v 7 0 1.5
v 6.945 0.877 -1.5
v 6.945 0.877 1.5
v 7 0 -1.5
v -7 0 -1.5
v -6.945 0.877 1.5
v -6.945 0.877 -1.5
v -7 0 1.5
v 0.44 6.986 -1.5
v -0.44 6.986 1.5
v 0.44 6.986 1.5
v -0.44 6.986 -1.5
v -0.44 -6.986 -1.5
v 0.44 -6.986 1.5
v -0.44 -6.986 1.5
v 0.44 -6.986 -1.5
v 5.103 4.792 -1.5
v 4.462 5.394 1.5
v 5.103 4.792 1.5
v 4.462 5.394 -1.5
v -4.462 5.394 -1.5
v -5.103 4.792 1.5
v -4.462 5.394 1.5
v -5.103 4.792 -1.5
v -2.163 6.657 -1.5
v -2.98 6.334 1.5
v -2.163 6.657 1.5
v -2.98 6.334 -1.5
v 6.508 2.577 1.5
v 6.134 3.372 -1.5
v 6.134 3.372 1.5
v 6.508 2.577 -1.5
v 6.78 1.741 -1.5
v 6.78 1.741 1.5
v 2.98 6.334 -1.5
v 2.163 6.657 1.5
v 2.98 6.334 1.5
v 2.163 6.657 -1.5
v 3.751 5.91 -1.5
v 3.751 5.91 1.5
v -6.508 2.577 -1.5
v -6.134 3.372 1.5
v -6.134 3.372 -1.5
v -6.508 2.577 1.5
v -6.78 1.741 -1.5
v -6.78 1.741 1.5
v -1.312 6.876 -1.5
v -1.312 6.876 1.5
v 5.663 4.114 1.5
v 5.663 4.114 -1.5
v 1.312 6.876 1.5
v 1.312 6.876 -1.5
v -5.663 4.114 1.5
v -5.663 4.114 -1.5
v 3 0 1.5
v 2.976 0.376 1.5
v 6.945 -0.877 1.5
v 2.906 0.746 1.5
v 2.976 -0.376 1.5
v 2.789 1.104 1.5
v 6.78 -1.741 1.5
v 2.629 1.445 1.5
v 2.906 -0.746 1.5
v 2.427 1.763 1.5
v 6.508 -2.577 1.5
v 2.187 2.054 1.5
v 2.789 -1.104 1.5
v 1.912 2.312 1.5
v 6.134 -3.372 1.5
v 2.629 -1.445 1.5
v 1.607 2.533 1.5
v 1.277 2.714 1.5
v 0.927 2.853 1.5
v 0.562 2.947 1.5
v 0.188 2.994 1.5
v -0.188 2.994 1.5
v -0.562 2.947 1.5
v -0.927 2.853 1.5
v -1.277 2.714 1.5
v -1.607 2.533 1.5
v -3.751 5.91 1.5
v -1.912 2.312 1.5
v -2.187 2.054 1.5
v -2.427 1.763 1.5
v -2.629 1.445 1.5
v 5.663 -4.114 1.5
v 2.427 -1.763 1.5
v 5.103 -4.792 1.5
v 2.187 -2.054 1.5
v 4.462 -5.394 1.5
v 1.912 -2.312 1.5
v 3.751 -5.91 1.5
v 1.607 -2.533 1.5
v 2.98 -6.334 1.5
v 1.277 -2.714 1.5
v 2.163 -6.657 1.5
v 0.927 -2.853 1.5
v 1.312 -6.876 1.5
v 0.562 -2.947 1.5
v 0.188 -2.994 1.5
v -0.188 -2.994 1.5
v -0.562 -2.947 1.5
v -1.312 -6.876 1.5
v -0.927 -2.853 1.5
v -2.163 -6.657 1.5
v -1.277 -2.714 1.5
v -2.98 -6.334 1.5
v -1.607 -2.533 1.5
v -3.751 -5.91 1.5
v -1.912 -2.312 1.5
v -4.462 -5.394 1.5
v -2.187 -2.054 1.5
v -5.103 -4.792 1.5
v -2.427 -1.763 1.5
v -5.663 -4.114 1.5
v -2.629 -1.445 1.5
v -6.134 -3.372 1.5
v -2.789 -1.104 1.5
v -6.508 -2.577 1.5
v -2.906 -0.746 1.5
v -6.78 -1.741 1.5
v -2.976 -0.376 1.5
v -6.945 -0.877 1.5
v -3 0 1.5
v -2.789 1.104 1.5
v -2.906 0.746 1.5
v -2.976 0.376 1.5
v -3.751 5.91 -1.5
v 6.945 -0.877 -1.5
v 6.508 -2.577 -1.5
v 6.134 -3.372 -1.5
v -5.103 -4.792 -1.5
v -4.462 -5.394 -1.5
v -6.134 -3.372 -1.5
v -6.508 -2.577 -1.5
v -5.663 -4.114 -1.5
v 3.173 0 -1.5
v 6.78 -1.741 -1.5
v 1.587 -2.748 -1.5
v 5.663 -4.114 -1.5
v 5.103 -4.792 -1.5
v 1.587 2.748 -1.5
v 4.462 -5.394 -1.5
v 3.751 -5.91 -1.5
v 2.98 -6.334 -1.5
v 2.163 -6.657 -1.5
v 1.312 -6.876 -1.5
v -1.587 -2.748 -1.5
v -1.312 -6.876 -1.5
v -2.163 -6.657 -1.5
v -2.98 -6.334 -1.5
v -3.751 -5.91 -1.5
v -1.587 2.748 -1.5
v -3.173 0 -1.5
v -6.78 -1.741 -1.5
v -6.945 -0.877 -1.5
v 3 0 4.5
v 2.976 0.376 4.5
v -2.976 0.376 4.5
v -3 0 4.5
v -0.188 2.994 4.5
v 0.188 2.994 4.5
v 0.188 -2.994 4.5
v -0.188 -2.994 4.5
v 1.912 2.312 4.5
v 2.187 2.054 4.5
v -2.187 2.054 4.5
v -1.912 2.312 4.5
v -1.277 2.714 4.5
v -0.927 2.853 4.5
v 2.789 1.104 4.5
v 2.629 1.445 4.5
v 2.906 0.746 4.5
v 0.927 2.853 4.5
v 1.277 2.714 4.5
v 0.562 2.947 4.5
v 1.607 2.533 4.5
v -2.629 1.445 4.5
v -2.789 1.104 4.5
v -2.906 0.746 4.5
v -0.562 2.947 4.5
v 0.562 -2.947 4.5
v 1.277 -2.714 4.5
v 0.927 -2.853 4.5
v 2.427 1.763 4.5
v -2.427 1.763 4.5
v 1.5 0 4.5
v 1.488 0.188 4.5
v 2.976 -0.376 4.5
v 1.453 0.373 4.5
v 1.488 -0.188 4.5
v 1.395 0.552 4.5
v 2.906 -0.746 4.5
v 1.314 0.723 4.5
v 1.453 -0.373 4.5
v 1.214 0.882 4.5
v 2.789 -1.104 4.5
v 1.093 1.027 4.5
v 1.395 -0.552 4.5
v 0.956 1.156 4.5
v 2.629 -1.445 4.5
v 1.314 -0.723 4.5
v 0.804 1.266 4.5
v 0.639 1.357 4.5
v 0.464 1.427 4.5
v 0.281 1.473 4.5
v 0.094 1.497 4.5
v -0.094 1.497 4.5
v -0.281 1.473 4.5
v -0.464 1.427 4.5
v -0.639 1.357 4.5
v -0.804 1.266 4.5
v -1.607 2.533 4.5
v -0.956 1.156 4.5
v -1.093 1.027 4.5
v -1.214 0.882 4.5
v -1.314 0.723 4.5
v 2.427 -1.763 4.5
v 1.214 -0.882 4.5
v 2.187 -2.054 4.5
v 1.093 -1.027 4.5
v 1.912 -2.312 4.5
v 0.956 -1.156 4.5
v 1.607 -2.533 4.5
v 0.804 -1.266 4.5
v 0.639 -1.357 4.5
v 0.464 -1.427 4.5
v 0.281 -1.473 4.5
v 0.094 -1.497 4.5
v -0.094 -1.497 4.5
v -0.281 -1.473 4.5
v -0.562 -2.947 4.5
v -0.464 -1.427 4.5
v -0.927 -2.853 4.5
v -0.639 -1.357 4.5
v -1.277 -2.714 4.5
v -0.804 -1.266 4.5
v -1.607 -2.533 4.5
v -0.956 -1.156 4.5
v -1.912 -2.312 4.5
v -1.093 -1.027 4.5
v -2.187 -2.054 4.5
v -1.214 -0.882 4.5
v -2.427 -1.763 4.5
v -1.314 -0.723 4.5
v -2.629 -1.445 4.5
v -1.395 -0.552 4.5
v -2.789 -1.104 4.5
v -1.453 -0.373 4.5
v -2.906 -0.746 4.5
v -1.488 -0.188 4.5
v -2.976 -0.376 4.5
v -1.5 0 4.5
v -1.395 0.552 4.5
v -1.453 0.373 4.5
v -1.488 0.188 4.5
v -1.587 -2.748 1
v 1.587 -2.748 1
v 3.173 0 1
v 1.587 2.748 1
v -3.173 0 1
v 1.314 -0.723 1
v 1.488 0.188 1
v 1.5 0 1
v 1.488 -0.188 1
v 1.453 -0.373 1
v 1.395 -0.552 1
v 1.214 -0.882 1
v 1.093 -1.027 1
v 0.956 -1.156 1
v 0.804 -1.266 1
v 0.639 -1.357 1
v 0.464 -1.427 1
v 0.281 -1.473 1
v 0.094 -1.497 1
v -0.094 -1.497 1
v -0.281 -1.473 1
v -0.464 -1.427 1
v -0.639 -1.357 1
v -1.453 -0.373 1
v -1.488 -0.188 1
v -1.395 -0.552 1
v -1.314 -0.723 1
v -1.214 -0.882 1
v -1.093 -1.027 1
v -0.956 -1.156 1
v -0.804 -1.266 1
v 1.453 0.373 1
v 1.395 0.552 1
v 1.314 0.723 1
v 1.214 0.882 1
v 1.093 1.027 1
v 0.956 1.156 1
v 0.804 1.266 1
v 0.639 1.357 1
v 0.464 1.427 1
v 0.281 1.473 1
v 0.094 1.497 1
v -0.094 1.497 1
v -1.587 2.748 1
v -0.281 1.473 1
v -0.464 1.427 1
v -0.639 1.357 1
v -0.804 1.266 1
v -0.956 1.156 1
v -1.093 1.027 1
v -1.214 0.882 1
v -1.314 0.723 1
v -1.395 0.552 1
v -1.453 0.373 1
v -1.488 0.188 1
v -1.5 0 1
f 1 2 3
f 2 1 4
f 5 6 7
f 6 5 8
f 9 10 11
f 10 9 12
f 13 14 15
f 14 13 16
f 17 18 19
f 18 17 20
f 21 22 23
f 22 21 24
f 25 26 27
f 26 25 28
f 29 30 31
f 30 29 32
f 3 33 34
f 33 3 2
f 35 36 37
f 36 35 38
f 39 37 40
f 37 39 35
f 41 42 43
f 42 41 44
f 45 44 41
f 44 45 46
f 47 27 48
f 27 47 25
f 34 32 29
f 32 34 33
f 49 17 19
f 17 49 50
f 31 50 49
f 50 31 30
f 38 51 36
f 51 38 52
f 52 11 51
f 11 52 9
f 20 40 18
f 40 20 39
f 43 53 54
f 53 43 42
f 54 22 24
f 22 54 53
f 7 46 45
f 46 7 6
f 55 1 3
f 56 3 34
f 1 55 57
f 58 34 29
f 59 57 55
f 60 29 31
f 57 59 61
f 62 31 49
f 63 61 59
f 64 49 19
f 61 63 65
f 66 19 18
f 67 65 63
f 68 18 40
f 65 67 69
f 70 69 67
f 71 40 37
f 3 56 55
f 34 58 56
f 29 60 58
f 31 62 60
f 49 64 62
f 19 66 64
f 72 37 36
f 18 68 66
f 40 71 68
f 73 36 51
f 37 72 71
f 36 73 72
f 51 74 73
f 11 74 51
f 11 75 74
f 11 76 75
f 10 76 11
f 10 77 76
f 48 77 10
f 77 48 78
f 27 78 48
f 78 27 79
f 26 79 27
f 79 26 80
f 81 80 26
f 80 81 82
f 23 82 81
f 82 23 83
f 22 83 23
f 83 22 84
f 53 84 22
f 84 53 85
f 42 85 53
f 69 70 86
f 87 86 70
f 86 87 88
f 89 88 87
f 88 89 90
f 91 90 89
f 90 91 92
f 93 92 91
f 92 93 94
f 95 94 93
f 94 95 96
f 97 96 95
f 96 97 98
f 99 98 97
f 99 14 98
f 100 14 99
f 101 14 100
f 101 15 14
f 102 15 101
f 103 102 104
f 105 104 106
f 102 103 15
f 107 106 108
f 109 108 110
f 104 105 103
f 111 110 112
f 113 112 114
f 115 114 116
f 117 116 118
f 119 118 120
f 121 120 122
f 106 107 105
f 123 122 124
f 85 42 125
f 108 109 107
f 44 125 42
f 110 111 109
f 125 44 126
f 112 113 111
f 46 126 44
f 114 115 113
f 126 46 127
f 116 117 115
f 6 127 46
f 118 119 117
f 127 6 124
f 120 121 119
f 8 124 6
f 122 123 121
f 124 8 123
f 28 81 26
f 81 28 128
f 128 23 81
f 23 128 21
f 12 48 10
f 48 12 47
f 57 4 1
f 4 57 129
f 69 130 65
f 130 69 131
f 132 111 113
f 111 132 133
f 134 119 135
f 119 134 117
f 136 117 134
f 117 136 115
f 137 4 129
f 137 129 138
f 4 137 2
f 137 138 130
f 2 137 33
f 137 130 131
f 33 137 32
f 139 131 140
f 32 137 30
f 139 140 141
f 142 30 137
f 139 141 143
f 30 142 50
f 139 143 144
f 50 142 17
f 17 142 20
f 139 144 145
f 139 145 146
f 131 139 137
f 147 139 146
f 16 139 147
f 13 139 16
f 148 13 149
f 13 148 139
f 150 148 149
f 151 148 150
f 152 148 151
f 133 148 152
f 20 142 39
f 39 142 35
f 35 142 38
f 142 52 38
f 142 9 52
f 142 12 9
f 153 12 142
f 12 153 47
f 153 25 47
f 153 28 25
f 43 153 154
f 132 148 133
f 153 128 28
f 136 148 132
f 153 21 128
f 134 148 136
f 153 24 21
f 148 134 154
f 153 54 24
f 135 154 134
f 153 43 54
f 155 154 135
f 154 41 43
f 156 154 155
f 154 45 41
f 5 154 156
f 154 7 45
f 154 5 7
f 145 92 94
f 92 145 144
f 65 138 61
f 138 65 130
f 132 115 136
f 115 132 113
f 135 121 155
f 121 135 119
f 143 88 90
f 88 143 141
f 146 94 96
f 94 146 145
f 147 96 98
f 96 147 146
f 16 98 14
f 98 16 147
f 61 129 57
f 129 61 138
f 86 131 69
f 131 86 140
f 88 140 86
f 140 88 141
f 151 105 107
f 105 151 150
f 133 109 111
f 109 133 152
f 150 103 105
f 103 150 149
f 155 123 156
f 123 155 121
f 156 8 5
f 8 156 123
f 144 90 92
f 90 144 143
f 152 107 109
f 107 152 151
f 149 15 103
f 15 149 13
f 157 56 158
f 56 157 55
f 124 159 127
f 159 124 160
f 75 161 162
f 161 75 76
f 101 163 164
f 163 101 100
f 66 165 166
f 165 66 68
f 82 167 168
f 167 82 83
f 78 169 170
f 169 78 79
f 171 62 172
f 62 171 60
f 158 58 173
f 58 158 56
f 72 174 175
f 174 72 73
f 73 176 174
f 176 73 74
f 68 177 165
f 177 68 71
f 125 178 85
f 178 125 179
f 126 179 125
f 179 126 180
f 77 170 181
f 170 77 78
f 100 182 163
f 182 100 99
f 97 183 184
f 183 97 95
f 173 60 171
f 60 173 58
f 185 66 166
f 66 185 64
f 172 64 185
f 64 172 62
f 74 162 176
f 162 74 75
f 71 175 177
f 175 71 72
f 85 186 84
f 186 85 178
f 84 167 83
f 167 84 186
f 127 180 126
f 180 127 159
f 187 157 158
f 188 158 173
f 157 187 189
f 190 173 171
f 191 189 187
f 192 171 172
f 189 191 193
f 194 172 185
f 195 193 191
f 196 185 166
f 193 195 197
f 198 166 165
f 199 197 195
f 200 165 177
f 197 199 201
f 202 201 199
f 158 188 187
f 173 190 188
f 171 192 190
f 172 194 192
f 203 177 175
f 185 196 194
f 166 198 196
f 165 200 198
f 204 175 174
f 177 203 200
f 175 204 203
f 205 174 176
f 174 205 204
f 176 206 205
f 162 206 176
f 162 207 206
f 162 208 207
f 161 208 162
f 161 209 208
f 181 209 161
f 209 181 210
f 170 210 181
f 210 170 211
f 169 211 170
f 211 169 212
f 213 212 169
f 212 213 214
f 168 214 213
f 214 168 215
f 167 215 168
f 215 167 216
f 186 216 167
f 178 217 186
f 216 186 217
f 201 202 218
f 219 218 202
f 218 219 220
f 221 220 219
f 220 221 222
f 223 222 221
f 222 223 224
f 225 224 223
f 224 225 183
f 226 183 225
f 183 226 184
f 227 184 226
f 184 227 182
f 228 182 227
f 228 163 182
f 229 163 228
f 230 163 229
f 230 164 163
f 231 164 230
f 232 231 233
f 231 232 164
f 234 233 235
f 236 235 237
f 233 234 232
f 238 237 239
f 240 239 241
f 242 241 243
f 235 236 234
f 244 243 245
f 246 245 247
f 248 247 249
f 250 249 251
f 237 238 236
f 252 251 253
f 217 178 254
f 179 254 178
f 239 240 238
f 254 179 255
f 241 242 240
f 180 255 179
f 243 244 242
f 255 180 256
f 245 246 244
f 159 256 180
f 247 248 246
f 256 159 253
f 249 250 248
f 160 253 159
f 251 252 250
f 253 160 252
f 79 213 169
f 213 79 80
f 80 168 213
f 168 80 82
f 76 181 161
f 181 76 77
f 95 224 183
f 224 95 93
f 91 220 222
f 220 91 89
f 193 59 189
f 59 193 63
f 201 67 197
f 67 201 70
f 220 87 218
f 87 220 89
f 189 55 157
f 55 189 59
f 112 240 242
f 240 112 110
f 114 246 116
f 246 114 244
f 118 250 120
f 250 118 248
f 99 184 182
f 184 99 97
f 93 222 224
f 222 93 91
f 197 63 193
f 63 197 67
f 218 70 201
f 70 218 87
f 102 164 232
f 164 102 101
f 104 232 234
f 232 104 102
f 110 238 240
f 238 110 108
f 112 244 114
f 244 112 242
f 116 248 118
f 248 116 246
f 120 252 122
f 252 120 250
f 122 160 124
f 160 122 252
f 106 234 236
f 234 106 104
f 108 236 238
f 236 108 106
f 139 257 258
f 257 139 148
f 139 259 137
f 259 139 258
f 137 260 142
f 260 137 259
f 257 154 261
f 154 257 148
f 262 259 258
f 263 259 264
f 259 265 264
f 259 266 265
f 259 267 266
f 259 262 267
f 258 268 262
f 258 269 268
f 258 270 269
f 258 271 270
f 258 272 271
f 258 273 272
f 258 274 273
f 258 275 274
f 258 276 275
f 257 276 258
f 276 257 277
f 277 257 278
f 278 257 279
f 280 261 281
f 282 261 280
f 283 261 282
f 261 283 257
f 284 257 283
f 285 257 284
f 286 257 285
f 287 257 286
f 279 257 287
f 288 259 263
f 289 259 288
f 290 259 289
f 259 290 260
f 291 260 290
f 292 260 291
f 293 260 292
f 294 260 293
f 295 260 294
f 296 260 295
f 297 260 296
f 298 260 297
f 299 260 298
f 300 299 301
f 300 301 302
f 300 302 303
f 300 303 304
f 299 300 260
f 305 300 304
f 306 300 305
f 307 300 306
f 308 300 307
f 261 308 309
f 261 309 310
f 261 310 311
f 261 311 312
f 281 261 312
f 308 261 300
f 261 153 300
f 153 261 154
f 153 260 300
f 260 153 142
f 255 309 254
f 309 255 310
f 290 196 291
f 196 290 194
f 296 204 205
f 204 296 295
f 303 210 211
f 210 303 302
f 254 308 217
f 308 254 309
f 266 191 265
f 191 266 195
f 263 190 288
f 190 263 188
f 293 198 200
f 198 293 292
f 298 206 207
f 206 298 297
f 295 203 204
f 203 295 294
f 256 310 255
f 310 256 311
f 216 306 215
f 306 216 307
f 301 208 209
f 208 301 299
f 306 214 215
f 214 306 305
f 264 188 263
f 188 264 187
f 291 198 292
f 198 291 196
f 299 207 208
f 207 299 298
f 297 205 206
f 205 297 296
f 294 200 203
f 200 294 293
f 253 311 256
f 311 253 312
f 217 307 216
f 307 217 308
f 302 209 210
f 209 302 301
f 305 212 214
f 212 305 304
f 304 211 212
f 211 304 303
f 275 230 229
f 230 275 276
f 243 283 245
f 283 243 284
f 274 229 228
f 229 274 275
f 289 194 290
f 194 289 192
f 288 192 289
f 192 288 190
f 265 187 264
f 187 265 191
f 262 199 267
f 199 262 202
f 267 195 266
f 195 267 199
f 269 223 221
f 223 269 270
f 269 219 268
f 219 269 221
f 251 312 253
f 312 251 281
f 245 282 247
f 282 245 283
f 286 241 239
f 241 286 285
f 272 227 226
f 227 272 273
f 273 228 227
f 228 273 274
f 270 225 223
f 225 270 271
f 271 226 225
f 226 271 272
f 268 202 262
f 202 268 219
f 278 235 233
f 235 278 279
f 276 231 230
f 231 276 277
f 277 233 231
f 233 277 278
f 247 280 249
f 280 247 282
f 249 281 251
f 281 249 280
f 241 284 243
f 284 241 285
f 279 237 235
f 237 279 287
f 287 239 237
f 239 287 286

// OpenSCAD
$fn = 50;


difference() {
	union() {
		translate(v = [0, 0, -1.5000000000]) {
			cylinder(h = 3, r = 7.0000000000);
		}
		translate(v = [0, 0, -1.5000000000]) {
			cylinder(h = 6, r = 3.0000000000);
		}
	}
	union() {
		translate(v = [0, 0, -1.5000000000]) {
			rotate(a = [0, 0, 0]) {
				difference() {
					union() {
						#linear_extrude(height = 2.5000000000) {
							polygon(points = [[3.1735000000, 0.0000000000], [1.5867500000, 2.7483316189], [-1.5867500000, 2.7483316189], [-3.1735000000, 0.0000000000], [-1.5867500000, -2.7483316189], [1.5867500000, -2.7483316189]]);
						}
					}
					union();
				}
			}
		}
		translate(v = [0, 0, -50.0000000000]) {
			cylinder(h = 100, r = 1.5000000000);
		}
	}
}
